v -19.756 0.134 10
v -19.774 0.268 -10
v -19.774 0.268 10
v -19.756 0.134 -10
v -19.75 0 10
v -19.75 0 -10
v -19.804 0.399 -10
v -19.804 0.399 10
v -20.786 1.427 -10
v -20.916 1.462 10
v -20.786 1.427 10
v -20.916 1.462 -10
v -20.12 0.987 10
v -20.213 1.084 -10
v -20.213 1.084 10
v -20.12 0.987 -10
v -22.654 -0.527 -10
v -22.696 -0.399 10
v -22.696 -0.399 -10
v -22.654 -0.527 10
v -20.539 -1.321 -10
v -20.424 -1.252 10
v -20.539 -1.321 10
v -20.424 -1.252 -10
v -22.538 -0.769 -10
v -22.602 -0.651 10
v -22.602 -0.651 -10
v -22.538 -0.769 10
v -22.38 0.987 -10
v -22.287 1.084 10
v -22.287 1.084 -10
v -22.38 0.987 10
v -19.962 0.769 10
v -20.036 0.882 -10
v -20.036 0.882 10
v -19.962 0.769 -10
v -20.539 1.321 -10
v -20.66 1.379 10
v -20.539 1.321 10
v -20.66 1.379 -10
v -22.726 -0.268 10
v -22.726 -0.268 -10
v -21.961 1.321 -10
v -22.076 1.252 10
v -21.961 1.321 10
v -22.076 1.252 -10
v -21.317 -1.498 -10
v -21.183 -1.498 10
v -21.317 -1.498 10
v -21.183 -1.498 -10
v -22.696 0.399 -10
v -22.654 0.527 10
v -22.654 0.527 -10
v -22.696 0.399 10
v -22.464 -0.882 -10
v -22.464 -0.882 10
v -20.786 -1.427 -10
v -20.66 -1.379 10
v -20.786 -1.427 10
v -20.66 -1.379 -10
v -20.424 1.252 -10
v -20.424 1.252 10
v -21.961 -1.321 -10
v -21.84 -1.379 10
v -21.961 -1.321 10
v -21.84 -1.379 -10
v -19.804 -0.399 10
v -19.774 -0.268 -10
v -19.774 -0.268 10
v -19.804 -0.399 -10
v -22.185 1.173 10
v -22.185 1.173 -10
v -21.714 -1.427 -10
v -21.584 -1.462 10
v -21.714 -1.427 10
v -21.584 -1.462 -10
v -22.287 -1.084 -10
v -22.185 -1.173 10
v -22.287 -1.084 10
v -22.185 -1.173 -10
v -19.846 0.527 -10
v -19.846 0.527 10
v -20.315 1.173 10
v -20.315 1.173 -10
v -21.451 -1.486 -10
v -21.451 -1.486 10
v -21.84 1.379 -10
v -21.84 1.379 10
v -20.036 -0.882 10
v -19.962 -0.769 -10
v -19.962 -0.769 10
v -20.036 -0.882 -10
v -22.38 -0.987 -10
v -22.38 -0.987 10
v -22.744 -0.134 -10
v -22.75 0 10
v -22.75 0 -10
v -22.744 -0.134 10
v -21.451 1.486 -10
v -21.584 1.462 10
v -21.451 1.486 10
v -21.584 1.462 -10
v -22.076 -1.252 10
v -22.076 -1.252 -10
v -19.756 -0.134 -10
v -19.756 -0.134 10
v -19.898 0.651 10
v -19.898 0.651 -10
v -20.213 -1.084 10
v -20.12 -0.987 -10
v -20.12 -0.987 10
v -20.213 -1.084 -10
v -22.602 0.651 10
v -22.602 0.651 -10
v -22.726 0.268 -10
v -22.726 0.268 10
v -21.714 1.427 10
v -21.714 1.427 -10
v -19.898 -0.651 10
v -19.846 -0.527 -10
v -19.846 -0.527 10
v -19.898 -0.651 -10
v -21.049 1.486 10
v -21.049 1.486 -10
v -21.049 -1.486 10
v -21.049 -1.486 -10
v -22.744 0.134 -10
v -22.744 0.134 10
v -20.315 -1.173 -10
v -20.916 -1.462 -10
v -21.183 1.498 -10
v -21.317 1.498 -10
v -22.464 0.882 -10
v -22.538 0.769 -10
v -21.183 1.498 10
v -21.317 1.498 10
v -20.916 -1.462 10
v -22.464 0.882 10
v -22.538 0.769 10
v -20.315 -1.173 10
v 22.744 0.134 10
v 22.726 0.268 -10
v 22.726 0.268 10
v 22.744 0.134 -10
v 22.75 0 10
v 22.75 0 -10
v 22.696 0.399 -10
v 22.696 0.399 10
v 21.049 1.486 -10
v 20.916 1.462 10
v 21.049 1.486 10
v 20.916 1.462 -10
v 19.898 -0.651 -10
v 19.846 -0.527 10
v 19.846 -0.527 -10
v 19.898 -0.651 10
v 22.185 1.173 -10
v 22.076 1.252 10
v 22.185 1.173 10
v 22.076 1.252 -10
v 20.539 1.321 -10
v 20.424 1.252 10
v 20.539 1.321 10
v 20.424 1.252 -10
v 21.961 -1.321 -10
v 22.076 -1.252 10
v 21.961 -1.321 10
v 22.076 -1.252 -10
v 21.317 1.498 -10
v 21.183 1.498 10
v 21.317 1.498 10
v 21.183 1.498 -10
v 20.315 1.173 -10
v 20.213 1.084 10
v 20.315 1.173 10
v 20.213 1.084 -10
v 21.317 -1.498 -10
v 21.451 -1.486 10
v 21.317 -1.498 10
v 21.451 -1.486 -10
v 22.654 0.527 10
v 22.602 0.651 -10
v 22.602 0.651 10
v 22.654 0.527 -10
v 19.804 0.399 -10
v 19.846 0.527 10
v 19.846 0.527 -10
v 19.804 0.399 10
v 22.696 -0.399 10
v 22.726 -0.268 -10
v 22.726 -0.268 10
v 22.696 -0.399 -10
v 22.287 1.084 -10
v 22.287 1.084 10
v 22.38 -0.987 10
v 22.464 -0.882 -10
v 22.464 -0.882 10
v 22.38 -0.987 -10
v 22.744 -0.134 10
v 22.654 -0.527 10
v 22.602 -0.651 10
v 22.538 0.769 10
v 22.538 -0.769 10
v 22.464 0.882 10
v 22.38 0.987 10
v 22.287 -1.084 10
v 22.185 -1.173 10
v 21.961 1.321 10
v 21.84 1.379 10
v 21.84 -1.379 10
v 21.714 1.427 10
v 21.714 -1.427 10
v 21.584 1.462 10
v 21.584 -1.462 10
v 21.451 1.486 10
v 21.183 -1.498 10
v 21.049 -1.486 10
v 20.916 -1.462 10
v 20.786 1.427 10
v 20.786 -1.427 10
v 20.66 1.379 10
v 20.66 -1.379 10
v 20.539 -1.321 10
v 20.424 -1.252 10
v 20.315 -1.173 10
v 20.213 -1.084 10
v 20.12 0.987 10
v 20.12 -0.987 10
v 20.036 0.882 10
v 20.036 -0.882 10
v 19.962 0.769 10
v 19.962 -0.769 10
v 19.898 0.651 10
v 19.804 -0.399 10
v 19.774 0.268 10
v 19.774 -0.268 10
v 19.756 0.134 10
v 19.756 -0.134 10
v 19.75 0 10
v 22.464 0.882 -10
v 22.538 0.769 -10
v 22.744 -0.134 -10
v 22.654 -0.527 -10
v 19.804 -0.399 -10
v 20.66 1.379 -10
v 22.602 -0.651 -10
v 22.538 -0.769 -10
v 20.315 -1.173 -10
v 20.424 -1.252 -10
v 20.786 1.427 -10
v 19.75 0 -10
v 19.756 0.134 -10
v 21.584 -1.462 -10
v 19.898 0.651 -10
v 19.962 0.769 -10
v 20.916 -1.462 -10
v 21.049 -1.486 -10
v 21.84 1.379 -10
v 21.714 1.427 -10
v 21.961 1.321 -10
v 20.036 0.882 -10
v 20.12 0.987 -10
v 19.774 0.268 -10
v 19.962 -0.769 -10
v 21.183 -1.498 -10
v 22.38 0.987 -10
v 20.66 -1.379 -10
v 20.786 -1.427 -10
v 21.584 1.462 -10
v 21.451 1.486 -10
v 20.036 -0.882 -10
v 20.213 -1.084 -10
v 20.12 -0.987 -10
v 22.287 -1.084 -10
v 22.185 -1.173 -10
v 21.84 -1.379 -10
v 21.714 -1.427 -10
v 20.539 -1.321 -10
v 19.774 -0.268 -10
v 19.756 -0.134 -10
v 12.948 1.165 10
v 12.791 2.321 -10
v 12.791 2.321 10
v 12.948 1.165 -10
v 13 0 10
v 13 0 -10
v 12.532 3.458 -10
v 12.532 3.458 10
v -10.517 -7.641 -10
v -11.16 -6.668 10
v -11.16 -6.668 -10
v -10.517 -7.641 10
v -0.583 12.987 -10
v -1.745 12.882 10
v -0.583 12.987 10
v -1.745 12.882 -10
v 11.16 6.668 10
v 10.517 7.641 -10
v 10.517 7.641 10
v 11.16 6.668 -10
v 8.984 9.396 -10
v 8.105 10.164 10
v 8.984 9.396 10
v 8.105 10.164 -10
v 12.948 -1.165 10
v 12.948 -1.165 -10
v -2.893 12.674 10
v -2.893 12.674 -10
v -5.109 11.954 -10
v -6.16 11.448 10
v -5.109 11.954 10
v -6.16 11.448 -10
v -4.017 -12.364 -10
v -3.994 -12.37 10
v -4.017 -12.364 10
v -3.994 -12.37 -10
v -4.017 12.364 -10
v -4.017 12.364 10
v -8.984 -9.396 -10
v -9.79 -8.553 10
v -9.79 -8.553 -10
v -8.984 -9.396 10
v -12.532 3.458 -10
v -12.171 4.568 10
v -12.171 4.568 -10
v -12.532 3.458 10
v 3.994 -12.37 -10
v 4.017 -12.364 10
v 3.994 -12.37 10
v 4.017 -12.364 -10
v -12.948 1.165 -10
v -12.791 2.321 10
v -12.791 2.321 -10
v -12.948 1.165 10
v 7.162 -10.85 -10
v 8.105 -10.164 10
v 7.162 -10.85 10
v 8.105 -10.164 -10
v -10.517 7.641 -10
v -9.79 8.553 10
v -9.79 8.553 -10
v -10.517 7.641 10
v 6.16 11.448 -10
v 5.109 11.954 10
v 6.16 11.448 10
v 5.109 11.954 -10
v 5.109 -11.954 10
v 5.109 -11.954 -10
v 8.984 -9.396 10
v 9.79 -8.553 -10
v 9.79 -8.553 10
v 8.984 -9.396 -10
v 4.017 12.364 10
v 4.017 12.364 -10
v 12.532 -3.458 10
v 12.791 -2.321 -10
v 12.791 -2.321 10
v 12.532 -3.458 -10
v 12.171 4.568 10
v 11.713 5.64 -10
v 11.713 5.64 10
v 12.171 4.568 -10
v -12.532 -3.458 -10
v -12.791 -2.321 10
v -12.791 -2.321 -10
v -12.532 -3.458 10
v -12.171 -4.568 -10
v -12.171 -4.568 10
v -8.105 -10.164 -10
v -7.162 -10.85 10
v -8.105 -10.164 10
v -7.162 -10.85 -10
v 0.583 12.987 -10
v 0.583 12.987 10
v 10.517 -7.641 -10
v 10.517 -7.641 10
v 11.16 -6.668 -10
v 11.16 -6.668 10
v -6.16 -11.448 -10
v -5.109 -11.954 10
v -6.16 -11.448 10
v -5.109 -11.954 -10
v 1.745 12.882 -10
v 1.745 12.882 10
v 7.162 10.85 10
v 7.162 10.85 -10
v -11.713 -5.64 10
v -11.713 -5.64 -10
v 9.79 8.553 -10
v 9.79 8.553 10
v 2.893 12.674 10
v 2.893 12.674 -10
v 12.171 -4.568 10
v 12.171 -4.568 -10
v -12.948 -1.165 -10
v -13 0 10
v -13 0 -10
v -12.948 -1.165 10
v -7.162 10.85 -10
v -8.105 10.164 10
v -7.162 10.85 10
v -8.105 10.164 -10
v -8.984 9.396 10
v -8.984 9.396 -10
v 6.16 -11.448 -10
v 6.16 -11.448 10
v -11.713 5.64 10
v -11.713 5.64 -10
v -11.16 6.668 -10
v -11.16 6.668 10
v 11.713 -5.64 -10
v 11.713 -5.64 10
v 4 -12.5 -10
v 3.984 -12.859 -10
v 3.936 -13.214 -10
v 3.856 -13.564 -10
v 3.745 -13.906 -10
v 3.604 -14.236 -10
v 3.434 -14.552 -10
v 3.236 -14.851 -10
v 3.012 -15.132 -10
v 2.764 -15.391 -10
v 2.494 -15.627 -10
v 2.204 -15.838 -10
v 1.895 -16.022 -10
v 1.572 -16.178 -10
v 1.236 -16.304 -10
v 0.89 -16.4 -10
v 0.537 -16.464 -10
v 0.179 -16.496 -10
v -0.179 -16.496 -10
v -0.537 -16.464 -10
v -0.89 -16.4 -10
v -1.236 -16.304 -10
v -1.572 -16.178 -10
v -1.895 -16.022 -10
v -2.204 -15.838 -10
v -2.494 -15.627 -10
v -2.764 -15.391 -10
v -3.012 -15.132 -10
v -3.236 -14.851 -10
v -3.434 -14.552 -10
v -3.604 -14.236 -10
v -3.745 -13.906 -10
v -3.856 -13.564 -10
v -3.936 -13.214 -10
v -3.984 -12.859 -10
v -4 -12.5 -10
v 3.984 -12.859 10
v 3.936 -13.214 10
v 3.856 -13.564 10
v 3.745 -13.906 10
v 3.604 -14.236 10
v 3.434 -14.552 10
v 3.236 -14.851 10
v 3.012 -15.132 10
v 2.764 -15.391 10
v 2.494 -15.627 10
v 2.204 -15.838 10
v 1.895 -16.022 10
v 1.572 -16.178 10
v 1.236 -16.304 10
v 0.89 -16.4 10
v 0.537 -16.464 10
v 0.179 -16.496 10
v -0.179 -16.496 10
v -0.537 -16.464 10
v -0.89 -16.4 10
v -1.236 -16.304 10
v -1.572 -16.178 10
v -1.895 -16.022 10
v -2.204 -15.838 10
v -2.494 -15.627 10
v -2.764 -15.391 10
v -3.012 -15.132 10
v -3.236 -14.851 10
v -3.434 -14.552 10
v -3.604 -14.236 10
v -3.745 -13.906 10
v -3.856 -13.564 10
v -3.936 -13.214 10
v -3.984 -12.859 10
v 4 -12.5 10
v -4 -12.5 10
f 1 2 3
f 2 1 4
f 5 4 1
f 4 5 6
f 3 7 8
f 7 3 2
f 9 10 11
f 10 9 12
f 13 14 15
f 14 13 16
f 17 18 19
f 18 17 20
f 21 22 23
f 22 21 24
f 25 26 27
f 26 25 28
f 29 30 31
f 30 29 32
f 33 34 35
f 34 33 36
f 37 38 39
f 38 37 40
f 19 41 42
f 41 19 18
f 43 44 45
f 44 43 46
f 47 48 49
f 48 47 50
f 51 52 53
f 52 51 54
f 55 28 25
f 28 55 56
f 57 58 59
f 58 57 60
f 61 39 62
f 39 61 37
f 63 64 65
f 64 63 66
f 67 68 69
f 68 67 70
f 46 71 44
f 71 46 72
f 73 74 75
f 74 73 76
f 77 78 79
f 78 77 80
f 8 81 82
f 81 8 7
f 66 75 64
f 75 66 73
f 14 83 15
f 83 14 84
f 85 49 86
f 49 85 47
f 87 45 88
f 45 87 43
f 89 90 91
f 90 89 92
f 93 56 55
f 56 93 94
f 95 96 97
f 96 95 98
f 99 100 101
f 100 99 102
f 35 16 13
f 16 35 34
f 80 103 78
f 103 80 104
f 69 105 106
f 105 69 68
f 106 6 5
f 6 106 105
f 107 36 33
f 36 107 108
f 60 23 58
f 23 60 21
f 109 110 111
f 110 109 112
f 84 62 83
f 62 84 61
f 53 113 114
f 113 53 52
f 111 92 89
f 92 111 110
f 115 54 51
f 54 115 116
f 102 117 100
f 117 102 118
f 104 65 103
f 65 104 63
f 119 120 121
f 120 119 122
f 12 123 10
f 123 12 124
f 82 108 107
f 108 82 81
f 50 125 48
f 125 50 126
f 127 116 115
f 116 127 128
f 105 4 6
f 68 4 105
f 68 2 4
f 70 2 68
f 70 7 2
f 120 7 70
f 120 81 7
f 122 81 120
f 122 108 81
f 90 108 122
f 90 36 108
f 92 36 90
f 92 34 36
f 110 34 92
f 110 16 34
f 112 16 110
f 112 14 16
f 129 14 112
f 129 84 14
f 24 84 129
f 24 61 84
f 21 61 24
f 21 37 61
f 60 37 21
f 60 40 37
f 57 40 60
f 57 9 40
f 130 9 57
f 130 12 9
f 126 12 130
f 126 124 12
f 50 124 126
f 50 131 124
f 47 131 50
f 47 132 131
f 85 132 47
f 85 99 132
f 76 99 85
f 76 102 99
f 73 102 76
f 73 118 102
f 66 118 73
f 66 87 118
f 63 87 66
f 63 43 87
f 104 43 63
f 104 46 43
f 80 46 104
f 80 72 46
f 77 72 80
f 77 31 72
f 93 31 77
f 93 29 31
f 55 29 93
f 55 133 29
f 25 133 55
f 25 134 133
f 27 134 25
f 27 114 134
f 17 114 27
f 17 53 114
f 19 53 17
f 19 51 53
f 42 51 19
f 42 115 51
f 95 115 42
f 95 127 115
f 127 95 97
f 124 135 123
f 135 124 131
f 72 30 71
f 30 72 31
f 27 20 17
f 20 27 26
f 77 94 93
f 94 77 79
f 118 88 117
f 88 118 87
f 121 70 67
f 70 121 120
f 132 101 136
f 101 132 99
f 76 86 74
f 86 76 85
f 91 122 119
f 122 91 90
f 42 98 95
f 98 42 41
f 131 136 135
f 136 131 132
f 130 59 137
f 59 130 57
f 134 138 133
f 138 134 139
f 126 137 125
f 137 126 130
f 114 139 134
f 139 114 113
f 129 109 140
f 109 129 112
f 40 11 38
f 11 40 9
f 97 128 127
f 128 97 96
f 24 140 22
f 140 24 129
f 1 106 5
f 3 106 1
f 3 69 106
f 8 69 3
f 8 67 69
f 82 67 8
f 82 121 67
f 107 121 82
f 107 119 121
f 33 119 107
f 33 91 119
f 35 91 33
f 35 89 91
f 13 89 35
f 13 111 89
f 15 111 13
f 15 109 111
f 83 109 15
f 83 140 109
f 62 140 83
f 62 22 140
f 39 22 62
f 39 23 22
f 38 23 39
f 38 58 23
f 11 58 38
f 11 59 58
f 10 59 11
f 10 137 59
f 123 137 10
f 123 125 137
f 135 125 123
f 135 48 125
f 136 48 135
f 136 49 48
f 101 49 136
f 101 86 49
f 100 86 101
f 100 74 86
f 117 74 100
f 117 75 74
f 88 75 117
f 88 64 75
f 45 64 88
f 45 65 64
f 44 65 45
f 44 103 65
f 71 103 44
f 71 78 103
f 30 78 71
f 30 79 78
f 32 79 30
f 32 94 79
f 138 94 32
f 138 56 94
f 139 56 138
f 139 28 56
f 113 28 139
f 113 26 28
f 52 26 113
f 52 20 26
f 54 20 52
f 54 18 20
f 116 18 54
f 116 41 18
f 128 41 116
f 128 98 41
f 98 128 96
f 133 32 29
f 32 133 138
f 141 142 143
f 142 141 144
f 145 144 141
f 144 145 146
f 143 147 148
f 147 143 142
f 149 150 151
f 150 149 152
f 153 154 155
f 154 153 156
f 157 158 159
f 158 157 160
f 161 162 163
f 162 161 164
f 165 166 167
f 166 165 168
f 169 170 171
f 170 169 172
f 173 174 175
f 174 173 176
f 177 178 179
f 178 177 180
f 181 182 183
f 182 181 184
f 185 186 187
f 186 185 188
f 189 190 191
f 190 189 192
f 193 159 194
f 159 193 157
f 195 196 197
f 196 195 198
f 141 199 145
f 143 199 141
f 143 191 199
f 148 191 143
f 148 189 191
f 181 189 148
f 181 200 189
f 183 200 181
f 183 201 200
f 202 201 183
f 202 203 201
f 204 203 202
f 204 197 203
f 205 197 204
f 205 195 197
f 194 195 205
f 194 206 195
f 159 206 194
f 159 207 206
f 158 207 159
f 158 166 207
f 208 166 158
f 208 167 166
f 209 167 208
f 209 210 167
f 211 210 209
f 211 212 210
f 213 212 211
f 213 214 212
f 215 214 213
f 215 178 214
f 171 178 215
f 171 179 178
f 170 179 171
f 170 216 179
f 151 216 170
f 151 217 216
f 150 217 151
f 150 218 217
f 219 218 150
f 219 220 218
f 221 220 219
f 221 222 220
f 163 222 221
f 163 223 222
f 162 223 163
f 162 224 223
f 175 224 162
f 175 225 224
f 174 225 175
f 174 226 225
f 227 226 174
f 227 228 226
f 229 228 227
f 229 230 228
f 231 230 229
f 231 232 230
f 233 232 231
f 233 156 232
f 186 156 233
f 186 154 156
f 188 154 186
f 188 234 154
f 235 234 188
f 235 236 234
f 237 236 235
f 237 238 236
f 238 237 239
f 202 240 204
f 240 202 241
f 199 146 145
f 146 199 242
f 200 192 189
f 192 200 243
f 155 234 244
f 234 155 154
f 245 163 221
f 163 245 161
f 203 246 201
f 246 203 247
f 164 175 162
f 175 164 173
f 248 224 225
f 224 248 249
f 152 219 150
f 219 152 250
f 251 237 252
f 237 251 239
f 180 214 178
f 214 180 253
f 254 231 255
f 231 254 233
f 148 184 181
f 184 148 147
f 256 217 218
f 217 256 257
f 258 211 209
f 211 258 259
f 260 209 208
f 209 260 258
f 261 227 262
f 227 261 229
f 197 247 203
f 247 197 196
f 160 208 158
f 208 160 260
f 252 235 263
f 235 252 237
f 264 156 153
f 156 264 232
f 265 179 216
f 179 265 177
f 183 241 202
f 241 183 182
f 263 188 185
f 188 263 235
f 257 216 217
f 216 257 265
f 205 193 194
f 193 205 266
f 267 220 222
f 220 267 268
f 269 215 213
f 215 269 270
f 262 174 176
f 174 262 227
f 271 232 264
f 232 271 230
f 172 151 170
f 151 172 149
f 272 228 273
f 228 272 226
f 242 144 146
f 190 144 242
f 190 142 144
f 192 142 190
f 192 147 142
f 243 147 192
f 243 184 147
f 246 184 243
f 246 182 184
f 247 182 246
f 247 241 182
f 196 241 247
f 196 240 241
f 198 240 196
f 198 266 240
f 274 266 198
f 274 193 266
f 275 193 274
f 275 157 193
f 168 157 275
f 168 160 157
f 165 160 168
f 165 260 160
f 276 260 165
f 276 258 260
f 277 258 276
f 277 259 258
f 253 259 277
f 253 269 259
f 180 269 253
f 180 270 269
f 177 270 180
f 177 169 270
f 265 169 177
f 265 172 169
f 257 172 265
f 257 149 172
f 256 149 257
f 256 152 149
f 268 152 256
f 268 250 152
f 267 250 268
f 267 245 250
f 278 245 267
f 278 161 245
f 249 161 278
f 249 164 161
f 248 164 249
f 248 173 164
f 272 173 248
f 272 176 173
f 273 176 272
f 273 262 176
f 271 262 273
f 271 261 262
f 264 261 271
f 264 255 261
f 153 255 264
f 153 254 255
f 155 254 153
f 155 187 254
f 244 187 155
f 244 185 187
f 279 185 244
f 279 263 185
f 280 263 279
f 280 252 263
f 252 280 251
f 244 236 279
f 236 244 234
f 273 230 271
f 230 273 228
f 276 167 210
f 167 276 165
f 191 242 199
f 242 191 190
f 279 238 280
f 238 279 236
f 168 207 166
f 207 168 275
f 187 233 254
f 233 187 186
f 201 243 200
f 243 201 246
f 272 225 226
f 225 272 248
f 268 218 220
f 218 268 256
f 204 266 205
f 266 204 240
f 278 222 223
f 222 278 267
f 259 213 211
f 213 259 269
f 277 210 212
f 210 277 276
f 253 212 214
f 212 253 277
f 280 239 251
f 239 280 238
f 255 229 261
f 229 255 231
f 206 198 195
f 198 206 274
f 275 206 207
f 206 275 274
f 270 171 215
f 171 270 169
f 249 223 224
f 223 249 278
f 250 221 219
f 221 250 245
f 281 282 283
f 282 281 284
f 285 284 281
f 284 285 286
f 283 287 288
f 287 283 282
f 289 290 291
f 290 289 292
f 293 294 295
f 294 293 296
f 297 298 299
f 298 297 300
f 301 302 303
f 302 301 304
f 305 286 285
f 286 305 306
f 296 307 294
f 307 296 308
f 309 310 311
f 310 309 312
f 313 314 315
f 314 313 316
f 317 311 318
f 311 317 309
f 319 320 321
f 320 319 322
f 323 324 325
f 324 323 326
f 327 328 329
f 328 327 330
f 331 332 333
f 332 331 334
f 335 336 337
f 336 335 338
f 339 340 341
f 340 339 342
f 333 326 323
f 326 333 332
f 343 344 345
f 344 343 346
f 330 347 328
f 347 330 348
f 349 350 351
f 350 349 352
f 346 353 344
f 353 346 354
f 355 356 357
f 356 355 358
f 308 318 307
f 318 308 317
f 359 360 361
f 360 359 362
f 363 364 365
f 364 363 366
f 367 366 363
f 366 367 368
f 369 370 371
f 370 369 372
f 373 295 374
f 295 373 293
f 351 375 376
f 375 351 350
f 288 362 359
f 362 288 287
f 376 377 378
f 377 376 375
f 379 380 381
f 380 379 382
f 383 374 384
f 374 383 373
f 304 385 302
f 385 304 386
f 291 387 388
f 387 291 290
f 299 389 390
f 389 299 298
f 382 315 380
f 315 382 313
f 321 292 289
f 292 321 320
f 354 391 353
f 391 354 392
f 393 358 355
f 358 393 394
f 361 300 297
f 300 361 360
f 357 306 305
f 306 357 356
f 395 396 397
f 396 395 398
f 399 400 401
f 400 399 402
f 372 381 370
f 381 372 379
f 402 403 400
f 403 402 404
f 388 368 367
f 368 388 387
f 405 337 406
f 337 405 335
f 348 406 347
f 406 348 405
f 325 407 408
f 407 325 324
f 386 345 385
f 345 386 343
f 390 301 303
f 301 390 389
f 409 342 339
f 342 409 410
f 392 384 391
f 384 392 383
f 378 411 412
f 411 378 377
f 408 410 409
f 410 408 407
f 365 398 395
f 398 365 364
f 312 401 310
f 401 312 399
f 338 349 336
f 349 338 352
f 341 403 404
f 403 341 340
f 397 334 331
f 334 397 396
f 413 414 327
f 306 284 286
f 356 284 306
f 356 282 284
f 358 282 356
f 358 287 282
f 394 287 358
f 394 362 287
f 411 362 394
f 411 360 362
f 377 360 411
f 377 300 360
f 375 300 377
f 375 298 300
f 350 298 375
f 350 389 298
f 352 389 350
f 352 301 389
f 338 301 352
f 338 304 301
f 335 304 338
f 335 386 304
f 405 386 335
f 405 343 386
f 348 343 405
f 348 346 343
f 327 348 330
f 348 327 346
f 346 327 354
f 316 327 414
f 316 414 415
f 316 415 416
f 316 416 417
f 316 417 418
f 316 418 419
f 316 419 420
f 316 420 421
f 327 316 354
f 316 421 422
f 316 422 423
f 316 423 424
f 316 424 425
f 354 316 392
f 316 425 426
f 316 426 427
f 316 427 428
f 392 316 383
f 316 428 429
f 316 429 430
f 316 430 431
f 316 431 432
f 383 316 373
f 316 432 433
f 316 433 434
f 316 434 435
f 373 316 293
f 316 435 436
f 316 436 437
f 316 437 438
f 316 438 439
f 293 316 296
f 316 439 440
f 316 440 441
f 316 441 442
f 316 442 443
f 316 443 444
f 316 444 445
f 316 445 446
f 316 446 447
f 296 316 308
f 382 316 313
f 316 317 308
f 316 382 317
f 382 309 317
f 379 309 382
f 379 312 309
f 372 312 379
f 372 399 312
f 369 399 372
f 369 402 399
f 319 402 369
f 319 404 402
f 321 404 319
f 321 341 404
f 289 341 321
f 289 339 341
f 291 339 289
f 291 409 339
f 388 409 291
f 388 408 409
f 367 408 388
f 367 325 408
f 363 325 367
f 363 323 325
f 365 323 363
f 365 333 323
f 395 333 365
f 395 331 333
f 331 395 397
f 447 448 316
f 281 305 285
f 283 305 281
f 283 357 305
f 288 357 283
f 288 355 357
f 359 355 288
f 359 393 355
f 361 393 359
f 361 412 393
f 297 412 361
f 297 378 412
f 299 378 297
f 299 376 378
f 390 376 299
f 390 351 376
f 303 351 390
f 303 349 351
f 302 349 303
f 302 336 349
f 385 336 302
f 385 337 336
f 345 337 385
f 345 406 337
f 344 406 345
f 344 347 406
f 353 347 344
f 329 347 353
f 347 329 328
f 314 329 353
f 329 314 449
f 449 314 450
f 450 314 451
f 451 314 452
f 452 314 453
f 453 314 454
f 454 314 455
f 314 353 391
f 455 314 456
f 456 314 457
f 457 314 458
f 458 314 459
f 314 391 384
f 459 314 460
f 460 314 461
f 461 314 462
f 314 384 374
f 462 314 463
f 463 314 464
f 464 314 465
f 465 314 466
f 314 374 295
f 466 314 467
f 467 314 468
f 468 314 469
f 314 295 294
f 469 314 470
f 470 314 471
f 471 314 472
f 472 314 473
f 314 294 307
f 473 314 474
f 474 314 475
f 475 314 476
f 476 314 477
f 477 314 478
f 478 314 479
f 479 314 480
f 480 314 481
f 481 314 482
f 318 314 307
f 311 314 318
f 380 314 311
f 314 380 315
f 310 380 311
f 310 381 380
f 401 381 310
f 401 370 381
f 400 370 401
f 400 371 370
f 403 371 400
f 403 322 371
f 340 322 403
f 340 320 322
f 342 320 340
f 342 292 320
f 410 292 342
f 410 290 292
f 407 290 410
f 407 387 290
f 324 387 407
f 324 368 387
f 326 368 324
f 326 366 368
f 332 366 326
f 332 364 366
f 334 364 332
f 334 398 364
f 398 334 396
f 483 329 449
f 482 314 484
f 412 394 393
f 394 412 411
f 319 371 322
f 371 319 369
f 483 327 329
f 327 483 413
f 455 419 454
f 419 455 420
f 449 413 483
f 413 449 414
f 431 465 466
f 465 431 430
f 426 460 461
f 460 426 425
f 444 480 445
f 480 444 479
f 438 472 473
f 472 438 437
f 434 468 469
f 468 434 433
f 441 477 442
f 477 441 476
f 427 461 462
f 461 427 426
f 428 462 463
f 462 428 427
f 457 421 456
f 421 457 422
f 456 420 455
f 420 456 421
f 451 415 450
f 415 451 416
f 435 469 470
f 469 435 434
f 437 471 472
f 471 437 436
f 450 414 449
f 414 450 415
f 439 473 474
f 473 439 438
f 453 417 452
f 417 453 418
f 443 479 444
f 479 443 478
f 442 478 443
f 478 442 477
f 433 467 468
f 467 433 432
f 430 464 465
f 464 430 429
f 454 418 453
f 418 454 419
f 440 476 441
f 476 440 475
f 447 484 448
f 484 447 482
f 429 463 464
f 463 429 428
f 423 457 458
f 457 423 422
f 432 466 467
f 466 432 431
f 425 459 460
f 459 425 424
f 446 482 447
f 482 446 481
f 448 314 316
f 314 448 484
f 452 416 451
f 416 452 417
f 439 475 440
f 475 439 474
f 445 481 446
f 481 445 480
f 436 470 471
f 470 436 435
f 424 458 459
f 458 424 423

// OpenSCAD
// file: I7PY-Q202-03.scad
module I7PY_stepper_motor(extrude=false)
{
    tolerance=1;
    length = 42;  // Length of the stepper motor
    width = 42;  // Width of the stepper motor
    height = 23.3;   // Height of the stepper motor
    cut_depth = 3; // Size of the angled cuts
    screws_holes_diameter = 3;
    screws_holes_distance_side = 31;


    module inner_circle_and_shaft()
    {
        outer_diameter = 22;
        inner_diameter = extrude ? 5 : outer_diameter - 3.5;
        ic_height = extrude ? 20 : 1.4;

        translate([0,(height+ic_height)/2,0])
        {
            rotate([90,0,0])
            {
                difference()
                {
                    cylinder(h=ic_height, d=outer_diameter+tolerance, center=true);
                    cylinder(h=ic_height, d=inner_diameter, center=true);
                }
            }
        }
        
        shaft_diameter = 5;
        shaft_height = 25;
        translate([0,(height+shaft_height)/2,0])
        rotate([90,0,0])
        cylinder(h=shaft_height,d=shaft_diameter,$fn=50);
    }



    // Function to create an angled cut
    module angled_cut()
    {
        rotate([0, 45, 0])
        translate([-cut_depth, -height/2, -cut_depth])
        cube([cut_depth * 2, height, cut_depth * 2]);
    }



    rotate([90,0,0])
    union()
    {
        // Main model
        color("black")
        difference() 
        {
            // Create the main cuboid
            cube([length, height, width], center=true);
            for (x = [-1, 1]) 
            {
                for (y = [-1, 1])    
                {
                    for (z = [-1, 1])
                    {
                        // corners angled cuts 
                        translate([x * length/2, y * height/2, z * width/2]) 
                        {
                              angled_cut();
                        }
                        
                        // screws holes
                        translate([x * screws_holes_distance_side/2, 0, z * screws_holes_distance_side/2])
                        {
                            rotate([90,0,0])
                            cylinder(h=height, d=screws_holes_diameter, center=true, $fn=50);
                        }
                    }
                }
            }
        }
        if (extrude)
        {
            for (x_y = [[-1, -1],[1,1]]) 
            {
                // extrude screw holes
                translate([x_y[0] * screws_holes_distance_side/2, 
                           0,
                           x_y[1] * screws_holes_distance_side/2])
                        {
                            rotate([90,0,0])
                            cylinder(h=height*3, d=screws_holes_diameter, center=true, $fn=50);
                        }
                }
        }

        color("gray")
        inner_circle_and_shaft();
    }
}
I7PY_stepper_motor();
// main file
use <I7PY-Q202-03.scad>
module epson_stepper_motor_template()
{
    $fn=70;
    tolerance=1;
    shaft_diameter = 25;
    shaft_height = 20;

    screw_hole_diameter = 3;
    screw_holes_distance = 42.5;
    cables_hole_radius = 4;

    cylinder(h=shaft_height,d=shaft_diameter+tolerance, center=true);

    translate([0,-shaft_diameter/2,0])
    cylinder(h=shaft_height, r=cables_hole_radius, center=true);
    for (x = [-1, 1])
    {
        translate([x * screw_holes_distance/2,0,0])
        cylinder(h=shaft_height, d=screw_hole_diameter, center=true);
    }
}

epson_stepper_motor_template();
